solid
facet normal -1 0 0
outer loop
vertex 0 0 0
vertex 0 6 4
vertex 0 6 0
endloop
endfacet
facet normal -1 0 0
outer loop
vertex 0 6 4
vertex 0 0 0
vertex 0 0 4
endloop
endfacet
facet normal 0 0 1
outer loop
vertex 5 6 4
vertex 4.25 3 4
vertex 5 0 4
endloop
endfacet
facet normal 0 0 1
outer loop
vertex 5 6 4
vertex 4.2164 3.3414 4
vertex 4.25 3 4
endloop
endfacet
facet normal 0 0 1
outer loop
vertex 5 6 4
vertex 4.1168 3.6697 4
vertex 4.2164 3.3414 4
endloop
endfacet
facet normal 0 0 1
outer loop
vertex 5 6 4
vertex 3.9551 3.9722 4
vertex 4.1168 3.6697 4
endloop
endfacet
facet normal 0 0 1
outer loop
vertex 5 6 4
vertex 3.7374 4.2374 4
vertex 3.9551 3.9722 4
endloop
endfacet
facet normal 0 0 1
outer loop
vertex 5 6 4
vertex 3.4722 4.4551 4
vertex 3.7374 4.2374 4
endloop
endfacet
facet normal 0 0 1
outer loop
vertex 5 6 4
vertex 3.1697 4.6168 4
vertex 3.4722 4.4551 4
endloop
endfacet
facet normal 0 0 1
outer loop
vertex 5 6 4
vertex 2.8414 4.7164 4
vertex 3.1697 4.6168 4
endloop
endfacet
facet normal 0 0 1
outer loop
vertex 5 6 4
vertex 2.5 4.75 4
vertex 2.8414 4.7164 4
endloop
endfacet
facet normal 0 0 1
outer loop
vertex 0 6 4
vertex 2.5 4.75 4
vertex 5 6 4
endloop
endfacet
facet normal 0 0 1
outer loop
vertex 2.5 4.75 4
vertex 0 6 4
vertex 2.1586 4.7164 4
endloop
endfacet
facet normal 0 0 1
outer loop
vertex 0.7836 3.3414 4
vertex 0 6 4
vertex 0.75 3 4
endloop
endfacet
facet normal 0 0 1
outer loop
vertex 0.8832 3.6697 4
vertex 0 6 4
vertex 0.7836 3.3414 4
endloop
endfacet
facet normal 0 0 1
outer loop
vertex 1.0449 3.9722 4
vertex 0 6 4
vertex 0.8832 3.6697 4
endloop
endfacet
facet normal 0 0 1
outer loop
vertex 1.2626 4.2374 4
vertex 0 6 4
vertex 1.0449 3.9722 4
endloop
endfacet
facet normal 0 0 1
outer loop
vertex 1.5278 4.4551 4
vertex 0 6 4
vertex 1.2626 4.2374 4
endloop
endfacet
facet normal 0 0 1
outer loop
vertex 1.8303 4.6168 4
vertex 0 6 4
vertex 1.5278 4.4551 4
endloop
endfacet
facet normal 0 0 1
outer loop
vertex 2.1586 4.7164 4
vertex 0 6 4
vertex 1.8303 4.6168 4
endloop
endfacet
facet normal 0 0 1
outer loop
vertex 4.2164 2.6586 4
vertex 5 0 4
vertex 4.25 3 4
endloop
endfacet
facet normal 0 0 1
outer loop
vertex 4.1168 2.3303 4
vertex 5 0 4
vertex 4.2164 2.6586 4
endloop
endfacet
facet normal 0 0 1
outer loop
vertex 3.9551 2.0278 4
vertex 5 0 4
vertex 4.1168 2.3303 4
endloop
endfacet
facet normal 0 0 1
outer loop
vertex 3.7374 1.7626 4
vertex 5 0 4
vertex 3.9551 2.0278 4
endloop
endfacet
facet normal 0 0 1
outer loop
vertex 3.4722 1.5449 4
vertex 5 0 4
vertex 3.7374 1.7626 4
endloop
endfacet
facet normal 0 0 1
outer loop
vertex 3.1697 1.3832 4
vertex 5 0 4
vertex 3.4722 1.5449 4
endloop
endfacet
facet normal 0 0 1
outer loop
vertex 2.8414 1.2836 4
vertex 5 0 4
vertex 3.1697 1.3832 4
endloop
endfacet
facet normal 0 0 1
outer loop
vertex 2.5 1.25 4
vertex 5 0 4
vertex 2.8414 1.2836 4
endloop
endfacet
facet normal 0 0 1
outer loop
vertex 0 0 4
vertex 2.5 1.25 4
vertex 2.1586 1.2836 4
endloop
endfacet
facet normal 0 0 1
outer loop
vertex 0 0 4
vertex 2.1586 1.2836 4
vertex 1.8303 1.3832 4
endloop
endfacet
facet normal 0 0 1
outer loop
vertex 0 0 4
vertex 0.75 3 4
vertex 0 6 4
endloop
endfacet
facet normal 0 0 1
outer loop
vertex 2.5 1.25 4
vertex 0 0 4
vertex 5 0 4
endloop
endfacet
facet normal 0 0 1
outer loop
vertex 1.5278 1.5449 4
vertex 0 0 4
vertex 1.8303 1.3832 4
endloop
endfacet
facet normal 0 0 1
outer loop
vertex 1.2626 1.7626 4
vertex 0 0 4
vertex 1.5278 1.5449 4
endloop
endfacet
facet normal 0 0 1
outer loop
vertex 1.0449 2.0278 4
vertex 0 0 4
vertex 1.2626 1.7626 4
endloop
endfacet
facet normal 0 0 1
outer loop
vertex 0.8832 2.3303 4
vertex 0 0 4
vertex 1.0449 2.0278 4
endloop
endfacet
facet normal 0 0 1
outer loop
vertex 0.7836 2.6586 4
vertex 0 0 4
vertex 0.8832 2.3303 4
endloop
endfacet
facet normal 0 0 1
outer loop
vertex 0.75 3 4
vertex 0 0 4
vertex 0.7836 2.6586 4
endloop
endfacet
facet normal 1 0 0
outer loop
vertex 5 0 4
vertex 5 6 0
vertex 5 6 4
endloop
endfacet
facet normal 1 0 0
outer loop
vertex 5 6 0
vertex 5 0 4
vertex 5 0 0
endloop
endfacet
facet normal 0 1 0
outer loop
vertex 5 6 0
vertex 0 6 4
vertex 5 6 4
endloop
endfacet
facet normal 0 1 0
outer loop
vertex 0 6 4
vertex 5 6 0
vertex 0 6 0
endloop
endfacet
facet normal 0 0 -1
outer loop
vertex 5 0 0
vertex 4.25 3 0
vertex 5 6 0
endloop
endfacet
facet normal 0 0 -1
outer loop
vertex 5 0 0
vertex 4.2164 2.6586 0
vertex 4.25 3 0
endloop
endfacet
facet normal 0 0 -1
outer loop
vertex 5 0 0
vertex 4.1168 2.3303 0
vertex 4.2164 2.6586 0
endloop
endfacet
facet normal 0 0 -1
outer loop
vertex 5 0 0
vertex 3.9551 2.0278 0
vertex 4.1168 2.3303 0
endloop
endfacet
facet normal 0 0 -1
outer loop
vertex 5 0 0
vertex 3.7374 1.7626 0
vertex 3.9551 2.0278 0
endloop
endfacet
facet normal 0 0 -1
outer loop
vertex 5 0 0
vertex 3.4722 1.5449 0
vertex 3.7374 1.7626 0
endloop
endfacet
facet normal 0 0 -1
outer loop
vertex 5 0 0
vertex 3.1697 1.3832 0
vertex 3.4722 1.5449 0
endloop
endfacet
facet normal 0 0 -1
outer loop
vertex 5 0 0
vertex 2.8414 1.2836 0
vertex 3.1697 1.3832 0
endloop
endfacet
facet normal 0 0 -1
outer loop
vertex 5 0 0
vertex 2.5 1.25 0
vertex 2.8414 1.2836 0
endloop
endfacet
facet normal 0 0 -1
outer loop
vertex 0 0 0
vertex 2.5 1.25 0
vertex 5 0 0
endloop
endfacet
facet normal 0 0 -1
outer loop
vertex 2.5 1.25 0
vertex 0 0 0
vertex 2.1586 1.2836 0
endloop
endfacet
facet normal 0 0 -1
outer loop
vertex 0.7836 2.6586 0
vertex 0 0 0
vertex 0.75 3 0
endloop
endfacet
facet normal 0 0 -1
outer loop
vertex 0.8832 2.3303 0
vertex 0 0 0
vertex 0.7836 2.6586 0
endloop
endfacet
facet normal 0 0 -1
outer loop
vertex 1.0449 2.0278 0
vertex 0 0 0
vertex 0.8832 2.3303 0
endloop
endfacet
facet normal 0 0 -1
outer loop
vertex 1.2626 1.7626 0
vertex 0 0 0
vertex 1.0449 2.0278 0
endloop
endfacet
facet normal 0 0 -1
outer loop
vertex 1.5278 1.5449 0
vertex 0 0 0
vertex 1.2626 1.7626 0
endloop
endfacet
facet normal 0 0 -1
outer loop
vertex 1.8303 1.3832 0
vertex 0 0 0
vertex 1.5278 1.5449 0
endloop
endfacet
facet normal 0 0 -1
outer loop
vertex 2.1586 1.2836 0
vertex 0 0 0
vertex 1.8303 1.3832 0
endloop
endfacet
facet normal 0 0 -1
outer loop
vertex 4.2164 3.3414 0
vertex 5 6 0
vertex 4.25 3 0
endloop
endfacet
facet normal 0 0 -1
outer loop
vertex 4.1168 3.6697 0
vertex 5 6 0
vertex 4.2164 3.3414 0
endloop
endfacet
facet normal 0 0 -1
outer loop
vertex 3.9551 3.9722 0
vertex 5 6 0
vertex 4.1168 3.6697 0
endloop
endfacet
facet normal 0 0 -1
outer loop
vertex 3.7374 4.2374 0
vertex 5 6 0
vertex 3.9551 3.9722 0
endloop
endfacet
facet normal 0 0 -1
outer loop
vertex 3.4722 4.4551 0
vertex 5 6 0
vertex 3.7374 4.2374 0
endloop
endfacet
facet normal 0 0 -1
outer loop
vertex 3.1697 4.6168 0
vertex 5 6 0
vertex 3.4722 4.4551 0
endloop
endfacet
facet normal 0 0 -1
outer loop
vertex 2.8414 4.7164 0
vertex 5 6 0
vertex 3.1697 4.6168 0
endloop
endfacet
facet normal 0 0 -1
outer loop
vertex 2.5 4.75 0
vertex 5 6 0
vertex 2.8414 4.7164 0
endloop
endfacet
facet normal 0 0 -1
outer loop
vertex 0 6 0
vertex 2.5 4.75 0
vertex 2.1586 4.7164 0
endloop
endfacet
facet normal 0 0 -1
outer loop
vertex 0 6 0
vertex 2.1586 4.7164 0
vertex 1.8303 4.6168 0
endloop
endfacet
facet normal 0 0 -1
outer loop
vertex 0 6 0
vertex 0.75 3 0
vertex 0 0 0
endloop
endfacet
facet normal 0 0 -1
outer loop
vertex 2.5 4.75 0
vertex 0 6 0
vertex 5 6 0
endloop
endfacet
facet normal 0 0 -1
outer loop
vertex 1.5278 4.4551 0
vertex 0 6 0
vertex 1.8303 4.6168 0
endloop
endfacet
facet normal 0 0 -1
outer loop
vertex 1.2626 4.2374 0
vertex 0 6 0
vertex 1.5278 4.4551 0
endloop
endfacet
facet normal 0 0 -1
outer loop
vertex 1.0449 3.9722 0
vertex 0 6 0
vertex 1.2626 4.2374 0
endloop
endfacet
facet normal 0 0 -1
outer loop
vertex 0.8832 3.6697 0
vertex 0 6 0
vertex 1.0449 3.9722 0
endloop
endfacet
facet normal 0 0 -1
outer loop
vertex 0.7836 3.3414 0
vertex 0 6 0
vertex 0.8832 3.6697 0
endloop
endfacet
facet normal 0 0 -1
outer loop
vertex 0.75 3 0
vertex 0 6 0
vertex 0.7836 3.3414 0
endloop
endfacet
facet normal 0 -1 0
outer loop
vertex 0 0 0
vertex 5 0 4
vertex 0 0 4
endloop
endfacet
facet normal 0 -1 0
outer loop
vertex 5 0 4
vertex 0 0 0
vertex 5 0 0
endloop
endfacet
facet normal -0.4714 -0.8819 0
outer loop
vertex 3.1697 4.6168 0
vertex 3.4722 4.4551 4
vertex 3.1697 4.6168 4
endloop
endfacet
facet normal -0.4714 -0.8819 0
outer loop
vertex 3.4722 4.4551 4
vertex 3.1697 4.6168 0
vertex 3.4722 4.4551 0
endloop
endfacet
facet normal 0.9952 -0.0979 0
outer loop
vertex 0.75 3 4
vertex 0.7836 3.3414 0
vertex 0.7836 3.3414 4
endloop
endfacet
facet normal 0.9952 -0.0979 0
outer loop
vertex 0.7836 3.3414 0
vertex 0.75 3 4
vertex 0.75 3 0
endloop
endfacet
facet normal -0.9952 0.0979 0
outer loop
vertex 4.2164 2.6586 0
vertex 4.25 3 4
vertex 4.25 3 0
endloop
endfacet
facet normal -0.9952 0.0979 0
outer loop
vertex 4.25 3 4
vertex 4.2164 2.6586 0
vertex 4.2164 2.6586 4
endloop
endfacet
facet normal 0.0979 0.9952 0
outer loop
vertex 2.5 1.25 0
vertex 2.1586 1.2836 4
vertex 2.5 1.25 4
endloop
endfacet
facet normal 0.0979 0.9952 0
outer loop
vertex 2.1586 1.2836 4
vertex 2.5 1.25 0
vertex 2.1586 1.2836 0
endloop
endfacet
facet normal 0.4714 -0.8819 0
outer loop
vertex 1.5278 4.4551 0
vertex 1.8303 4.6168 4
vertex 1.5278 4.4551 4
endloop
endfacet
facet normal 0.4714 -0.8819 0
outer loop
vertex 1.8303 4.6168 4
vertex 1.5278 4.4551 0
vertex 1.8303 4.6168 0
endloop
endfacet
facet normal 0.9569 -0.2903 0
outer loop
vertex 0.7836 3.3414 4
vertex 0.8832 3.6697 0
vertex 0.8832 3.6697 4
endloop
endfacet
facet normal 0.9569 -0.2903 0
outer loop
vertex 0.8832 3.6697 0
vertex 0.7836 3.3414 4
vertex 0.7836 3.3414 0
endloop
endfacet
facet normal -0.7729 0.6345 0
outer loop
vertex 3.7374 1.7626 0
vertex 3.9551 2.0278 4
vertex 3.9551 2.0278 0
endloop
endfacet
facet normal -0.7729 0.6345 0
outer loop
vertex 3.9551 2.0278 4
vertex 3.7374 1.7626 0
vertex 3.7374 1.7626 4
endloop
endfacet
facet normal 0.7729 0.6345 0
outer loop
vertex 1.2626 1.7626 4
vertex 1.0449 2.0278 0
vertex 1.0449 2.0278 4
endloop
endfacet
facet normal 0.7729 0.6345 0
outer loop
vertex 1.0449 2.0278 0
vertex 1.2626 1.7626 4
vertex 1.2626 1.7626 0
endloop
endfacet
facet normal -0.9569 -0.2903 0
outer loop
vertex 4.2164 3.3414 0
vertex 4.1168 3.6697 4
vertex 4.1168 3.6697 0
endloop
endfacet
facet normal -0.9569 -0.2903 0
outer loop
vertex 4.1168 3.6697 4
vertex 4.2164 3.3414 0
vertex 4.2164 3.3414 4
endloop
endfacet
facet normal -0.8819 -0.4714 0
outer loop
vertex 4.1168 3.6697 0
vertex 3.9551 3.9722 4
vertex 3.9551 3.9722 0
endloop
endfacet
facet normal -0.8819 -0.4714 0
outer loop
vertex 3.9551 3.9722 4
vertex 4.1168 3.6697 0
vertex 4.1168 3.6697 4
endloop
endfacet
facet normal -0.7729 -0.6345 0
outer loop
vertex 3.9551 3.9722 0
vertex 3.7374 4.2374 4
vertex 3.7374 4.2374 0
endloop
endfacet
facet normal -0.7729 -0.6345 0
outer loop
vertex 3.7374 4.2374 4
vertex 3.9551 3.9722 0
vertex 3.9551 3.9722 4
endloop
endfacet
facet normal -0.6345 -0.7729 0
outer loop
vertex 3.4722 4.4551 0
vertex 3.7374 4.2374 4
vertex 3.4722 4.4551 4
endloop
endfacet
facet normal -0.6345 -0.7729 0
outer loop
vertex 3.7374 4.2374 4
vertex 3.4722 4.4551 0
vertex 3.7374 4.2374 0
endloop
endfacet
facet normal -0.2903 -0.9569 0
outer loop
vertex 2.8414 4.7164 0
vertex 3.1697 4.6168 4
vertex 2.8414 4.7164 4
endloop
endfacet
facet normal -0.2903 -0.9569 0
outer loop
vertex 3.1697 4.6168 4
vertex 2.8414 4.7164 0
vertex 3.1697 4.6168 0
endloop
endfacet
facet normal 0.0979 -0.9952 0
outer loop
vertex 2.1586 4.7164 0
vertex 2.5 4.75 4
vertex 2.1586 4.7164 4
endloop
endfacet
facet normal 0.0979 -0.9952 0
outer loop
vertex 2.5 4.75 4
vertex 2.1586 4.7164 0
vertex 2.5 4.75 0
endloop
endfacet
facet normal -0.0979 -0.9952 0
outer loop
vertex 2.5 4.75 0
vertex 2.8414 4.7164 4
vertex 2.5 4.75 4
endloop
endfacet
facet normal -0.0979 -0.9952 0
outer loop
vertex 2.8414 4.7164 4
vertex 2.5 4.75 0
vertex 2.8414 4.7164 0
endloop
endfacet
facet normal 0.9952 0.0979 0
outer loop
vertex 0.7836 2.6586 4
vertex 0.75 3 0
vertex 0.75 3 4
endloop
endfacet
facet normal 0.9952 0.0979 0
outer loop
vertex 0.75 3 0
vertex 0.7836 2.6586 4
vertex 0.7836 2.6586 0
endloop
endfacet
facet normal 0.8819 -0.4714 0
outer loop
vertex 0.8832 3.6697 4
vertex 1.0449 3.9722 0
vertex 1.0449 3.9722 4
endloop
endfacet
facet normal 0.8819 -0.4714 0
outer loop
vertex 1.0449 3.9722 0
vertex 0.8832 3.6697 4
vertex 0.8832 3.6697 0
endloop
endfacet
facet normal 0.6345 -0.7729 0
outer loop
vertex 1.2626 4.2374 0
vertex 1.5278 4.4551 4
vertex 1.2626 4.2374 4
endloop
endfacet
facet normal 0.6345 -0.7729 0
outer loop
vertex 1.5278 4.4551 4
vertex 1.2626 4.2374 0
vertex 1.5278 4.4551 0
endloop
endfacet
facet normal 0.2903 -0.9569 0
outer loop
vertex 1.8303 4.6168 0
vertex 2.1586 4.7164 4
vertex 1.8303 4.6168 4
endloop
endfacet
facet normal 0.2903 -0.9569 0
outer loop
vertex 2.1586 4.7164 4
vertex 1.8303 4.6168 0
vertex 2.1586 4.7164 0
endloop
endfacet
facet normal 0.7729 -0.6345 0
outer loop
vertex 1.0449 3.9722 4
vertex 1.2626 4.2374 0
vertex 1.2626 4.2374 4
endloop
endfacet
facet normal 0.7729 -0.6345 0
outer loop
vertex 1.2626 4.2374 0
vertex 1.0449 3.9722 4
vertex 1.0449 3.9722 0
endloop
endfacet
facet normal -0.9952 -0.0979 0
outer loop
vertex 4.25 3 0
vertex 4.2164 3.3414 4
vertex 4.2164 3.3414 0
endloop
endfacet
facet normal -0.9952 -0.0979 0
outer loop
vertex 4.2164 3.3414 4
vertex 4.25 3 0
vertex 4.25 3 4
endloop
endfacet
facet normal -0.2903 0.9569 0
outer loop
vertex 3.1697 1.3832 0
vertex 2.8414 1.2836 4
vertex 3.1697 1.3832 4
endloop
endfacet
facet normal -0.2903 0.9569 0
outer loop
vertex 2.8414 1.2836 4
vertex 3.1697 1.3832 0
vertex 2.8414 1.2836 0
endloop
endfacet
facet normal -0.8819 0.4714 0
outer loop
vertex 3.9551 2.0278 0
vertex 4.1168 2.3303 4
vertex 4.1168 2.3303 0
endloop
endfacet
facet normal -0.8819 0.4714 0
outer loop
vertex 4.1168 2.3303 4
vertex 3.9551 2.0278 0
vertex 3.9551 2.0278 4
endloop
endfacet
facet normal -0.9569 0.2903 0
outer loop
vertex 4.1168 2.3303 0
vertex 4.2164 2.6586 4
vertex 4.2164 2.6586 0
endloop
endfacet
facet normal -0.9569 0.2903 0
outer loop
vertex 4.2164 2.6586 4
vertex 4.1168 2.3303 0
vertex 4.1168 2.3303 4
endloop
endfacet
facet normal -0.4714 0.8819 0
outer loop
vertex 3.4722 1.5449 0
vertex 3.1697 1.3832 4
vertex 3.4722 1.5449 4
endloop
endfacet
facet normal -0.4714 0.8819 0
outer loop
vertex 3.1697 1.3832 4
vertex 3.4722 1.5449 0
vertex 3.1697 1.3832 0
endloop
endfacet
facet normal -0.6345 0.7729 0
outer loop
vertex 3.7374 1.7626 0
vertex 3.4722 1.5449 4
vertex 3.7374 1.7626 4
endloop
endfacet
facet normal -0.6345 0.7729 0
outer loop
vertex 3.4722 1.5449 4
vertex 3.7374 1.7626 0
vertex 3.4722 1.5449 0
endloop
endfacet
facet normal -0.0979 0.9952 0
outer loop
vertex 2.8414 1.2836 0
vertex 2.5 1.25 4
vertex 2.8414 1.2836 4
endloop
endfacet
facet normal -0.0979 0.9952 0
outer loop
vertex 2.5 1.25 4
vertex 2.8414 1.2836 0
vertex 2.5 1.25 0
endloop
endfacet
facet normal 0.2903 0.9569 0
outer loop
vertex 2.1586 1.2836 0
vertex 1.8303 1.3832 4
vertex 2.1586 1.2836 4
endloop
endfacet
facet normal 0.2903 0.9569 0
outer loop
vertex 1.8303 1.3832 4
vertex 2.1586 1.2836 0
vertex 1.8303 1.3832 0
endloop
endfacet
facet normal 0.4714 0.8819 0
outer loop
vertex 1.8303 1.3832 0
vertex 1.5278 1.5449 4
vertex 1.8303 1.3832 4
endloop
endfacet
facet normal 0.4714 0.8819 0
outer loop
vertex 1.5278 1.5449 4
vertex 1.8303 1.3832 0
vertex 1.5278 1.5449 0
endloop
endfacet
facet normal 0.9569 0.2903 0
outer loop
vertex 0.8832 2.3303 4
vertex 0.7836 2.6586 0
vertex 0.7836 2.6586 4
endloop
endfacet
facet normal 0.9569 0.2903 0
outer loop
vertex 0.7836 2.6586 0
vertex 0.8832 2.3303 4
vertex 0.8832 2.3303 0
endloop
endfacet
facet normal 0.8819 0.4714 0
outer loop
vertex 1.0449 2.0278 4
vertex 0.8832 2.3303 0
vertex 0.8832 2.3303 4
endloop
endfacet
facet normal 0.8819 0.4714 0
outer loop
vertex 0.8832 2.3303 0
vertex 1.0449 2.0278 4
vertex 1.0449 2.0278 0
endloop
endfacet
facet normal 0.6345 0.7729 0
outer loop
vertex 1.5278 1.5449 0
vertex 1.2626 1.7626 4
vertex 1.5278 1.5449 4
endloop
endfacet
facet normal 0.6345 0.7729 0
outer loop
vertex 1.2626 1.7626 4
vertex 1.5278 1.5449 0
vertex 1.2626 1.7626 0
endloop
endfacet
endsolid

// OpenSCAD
$fn=32;

difference() {
    cube([5,6,4]);
    translate([2.5,3,0]) {
        cylinder(h=4,r=1.75);
    }
}
